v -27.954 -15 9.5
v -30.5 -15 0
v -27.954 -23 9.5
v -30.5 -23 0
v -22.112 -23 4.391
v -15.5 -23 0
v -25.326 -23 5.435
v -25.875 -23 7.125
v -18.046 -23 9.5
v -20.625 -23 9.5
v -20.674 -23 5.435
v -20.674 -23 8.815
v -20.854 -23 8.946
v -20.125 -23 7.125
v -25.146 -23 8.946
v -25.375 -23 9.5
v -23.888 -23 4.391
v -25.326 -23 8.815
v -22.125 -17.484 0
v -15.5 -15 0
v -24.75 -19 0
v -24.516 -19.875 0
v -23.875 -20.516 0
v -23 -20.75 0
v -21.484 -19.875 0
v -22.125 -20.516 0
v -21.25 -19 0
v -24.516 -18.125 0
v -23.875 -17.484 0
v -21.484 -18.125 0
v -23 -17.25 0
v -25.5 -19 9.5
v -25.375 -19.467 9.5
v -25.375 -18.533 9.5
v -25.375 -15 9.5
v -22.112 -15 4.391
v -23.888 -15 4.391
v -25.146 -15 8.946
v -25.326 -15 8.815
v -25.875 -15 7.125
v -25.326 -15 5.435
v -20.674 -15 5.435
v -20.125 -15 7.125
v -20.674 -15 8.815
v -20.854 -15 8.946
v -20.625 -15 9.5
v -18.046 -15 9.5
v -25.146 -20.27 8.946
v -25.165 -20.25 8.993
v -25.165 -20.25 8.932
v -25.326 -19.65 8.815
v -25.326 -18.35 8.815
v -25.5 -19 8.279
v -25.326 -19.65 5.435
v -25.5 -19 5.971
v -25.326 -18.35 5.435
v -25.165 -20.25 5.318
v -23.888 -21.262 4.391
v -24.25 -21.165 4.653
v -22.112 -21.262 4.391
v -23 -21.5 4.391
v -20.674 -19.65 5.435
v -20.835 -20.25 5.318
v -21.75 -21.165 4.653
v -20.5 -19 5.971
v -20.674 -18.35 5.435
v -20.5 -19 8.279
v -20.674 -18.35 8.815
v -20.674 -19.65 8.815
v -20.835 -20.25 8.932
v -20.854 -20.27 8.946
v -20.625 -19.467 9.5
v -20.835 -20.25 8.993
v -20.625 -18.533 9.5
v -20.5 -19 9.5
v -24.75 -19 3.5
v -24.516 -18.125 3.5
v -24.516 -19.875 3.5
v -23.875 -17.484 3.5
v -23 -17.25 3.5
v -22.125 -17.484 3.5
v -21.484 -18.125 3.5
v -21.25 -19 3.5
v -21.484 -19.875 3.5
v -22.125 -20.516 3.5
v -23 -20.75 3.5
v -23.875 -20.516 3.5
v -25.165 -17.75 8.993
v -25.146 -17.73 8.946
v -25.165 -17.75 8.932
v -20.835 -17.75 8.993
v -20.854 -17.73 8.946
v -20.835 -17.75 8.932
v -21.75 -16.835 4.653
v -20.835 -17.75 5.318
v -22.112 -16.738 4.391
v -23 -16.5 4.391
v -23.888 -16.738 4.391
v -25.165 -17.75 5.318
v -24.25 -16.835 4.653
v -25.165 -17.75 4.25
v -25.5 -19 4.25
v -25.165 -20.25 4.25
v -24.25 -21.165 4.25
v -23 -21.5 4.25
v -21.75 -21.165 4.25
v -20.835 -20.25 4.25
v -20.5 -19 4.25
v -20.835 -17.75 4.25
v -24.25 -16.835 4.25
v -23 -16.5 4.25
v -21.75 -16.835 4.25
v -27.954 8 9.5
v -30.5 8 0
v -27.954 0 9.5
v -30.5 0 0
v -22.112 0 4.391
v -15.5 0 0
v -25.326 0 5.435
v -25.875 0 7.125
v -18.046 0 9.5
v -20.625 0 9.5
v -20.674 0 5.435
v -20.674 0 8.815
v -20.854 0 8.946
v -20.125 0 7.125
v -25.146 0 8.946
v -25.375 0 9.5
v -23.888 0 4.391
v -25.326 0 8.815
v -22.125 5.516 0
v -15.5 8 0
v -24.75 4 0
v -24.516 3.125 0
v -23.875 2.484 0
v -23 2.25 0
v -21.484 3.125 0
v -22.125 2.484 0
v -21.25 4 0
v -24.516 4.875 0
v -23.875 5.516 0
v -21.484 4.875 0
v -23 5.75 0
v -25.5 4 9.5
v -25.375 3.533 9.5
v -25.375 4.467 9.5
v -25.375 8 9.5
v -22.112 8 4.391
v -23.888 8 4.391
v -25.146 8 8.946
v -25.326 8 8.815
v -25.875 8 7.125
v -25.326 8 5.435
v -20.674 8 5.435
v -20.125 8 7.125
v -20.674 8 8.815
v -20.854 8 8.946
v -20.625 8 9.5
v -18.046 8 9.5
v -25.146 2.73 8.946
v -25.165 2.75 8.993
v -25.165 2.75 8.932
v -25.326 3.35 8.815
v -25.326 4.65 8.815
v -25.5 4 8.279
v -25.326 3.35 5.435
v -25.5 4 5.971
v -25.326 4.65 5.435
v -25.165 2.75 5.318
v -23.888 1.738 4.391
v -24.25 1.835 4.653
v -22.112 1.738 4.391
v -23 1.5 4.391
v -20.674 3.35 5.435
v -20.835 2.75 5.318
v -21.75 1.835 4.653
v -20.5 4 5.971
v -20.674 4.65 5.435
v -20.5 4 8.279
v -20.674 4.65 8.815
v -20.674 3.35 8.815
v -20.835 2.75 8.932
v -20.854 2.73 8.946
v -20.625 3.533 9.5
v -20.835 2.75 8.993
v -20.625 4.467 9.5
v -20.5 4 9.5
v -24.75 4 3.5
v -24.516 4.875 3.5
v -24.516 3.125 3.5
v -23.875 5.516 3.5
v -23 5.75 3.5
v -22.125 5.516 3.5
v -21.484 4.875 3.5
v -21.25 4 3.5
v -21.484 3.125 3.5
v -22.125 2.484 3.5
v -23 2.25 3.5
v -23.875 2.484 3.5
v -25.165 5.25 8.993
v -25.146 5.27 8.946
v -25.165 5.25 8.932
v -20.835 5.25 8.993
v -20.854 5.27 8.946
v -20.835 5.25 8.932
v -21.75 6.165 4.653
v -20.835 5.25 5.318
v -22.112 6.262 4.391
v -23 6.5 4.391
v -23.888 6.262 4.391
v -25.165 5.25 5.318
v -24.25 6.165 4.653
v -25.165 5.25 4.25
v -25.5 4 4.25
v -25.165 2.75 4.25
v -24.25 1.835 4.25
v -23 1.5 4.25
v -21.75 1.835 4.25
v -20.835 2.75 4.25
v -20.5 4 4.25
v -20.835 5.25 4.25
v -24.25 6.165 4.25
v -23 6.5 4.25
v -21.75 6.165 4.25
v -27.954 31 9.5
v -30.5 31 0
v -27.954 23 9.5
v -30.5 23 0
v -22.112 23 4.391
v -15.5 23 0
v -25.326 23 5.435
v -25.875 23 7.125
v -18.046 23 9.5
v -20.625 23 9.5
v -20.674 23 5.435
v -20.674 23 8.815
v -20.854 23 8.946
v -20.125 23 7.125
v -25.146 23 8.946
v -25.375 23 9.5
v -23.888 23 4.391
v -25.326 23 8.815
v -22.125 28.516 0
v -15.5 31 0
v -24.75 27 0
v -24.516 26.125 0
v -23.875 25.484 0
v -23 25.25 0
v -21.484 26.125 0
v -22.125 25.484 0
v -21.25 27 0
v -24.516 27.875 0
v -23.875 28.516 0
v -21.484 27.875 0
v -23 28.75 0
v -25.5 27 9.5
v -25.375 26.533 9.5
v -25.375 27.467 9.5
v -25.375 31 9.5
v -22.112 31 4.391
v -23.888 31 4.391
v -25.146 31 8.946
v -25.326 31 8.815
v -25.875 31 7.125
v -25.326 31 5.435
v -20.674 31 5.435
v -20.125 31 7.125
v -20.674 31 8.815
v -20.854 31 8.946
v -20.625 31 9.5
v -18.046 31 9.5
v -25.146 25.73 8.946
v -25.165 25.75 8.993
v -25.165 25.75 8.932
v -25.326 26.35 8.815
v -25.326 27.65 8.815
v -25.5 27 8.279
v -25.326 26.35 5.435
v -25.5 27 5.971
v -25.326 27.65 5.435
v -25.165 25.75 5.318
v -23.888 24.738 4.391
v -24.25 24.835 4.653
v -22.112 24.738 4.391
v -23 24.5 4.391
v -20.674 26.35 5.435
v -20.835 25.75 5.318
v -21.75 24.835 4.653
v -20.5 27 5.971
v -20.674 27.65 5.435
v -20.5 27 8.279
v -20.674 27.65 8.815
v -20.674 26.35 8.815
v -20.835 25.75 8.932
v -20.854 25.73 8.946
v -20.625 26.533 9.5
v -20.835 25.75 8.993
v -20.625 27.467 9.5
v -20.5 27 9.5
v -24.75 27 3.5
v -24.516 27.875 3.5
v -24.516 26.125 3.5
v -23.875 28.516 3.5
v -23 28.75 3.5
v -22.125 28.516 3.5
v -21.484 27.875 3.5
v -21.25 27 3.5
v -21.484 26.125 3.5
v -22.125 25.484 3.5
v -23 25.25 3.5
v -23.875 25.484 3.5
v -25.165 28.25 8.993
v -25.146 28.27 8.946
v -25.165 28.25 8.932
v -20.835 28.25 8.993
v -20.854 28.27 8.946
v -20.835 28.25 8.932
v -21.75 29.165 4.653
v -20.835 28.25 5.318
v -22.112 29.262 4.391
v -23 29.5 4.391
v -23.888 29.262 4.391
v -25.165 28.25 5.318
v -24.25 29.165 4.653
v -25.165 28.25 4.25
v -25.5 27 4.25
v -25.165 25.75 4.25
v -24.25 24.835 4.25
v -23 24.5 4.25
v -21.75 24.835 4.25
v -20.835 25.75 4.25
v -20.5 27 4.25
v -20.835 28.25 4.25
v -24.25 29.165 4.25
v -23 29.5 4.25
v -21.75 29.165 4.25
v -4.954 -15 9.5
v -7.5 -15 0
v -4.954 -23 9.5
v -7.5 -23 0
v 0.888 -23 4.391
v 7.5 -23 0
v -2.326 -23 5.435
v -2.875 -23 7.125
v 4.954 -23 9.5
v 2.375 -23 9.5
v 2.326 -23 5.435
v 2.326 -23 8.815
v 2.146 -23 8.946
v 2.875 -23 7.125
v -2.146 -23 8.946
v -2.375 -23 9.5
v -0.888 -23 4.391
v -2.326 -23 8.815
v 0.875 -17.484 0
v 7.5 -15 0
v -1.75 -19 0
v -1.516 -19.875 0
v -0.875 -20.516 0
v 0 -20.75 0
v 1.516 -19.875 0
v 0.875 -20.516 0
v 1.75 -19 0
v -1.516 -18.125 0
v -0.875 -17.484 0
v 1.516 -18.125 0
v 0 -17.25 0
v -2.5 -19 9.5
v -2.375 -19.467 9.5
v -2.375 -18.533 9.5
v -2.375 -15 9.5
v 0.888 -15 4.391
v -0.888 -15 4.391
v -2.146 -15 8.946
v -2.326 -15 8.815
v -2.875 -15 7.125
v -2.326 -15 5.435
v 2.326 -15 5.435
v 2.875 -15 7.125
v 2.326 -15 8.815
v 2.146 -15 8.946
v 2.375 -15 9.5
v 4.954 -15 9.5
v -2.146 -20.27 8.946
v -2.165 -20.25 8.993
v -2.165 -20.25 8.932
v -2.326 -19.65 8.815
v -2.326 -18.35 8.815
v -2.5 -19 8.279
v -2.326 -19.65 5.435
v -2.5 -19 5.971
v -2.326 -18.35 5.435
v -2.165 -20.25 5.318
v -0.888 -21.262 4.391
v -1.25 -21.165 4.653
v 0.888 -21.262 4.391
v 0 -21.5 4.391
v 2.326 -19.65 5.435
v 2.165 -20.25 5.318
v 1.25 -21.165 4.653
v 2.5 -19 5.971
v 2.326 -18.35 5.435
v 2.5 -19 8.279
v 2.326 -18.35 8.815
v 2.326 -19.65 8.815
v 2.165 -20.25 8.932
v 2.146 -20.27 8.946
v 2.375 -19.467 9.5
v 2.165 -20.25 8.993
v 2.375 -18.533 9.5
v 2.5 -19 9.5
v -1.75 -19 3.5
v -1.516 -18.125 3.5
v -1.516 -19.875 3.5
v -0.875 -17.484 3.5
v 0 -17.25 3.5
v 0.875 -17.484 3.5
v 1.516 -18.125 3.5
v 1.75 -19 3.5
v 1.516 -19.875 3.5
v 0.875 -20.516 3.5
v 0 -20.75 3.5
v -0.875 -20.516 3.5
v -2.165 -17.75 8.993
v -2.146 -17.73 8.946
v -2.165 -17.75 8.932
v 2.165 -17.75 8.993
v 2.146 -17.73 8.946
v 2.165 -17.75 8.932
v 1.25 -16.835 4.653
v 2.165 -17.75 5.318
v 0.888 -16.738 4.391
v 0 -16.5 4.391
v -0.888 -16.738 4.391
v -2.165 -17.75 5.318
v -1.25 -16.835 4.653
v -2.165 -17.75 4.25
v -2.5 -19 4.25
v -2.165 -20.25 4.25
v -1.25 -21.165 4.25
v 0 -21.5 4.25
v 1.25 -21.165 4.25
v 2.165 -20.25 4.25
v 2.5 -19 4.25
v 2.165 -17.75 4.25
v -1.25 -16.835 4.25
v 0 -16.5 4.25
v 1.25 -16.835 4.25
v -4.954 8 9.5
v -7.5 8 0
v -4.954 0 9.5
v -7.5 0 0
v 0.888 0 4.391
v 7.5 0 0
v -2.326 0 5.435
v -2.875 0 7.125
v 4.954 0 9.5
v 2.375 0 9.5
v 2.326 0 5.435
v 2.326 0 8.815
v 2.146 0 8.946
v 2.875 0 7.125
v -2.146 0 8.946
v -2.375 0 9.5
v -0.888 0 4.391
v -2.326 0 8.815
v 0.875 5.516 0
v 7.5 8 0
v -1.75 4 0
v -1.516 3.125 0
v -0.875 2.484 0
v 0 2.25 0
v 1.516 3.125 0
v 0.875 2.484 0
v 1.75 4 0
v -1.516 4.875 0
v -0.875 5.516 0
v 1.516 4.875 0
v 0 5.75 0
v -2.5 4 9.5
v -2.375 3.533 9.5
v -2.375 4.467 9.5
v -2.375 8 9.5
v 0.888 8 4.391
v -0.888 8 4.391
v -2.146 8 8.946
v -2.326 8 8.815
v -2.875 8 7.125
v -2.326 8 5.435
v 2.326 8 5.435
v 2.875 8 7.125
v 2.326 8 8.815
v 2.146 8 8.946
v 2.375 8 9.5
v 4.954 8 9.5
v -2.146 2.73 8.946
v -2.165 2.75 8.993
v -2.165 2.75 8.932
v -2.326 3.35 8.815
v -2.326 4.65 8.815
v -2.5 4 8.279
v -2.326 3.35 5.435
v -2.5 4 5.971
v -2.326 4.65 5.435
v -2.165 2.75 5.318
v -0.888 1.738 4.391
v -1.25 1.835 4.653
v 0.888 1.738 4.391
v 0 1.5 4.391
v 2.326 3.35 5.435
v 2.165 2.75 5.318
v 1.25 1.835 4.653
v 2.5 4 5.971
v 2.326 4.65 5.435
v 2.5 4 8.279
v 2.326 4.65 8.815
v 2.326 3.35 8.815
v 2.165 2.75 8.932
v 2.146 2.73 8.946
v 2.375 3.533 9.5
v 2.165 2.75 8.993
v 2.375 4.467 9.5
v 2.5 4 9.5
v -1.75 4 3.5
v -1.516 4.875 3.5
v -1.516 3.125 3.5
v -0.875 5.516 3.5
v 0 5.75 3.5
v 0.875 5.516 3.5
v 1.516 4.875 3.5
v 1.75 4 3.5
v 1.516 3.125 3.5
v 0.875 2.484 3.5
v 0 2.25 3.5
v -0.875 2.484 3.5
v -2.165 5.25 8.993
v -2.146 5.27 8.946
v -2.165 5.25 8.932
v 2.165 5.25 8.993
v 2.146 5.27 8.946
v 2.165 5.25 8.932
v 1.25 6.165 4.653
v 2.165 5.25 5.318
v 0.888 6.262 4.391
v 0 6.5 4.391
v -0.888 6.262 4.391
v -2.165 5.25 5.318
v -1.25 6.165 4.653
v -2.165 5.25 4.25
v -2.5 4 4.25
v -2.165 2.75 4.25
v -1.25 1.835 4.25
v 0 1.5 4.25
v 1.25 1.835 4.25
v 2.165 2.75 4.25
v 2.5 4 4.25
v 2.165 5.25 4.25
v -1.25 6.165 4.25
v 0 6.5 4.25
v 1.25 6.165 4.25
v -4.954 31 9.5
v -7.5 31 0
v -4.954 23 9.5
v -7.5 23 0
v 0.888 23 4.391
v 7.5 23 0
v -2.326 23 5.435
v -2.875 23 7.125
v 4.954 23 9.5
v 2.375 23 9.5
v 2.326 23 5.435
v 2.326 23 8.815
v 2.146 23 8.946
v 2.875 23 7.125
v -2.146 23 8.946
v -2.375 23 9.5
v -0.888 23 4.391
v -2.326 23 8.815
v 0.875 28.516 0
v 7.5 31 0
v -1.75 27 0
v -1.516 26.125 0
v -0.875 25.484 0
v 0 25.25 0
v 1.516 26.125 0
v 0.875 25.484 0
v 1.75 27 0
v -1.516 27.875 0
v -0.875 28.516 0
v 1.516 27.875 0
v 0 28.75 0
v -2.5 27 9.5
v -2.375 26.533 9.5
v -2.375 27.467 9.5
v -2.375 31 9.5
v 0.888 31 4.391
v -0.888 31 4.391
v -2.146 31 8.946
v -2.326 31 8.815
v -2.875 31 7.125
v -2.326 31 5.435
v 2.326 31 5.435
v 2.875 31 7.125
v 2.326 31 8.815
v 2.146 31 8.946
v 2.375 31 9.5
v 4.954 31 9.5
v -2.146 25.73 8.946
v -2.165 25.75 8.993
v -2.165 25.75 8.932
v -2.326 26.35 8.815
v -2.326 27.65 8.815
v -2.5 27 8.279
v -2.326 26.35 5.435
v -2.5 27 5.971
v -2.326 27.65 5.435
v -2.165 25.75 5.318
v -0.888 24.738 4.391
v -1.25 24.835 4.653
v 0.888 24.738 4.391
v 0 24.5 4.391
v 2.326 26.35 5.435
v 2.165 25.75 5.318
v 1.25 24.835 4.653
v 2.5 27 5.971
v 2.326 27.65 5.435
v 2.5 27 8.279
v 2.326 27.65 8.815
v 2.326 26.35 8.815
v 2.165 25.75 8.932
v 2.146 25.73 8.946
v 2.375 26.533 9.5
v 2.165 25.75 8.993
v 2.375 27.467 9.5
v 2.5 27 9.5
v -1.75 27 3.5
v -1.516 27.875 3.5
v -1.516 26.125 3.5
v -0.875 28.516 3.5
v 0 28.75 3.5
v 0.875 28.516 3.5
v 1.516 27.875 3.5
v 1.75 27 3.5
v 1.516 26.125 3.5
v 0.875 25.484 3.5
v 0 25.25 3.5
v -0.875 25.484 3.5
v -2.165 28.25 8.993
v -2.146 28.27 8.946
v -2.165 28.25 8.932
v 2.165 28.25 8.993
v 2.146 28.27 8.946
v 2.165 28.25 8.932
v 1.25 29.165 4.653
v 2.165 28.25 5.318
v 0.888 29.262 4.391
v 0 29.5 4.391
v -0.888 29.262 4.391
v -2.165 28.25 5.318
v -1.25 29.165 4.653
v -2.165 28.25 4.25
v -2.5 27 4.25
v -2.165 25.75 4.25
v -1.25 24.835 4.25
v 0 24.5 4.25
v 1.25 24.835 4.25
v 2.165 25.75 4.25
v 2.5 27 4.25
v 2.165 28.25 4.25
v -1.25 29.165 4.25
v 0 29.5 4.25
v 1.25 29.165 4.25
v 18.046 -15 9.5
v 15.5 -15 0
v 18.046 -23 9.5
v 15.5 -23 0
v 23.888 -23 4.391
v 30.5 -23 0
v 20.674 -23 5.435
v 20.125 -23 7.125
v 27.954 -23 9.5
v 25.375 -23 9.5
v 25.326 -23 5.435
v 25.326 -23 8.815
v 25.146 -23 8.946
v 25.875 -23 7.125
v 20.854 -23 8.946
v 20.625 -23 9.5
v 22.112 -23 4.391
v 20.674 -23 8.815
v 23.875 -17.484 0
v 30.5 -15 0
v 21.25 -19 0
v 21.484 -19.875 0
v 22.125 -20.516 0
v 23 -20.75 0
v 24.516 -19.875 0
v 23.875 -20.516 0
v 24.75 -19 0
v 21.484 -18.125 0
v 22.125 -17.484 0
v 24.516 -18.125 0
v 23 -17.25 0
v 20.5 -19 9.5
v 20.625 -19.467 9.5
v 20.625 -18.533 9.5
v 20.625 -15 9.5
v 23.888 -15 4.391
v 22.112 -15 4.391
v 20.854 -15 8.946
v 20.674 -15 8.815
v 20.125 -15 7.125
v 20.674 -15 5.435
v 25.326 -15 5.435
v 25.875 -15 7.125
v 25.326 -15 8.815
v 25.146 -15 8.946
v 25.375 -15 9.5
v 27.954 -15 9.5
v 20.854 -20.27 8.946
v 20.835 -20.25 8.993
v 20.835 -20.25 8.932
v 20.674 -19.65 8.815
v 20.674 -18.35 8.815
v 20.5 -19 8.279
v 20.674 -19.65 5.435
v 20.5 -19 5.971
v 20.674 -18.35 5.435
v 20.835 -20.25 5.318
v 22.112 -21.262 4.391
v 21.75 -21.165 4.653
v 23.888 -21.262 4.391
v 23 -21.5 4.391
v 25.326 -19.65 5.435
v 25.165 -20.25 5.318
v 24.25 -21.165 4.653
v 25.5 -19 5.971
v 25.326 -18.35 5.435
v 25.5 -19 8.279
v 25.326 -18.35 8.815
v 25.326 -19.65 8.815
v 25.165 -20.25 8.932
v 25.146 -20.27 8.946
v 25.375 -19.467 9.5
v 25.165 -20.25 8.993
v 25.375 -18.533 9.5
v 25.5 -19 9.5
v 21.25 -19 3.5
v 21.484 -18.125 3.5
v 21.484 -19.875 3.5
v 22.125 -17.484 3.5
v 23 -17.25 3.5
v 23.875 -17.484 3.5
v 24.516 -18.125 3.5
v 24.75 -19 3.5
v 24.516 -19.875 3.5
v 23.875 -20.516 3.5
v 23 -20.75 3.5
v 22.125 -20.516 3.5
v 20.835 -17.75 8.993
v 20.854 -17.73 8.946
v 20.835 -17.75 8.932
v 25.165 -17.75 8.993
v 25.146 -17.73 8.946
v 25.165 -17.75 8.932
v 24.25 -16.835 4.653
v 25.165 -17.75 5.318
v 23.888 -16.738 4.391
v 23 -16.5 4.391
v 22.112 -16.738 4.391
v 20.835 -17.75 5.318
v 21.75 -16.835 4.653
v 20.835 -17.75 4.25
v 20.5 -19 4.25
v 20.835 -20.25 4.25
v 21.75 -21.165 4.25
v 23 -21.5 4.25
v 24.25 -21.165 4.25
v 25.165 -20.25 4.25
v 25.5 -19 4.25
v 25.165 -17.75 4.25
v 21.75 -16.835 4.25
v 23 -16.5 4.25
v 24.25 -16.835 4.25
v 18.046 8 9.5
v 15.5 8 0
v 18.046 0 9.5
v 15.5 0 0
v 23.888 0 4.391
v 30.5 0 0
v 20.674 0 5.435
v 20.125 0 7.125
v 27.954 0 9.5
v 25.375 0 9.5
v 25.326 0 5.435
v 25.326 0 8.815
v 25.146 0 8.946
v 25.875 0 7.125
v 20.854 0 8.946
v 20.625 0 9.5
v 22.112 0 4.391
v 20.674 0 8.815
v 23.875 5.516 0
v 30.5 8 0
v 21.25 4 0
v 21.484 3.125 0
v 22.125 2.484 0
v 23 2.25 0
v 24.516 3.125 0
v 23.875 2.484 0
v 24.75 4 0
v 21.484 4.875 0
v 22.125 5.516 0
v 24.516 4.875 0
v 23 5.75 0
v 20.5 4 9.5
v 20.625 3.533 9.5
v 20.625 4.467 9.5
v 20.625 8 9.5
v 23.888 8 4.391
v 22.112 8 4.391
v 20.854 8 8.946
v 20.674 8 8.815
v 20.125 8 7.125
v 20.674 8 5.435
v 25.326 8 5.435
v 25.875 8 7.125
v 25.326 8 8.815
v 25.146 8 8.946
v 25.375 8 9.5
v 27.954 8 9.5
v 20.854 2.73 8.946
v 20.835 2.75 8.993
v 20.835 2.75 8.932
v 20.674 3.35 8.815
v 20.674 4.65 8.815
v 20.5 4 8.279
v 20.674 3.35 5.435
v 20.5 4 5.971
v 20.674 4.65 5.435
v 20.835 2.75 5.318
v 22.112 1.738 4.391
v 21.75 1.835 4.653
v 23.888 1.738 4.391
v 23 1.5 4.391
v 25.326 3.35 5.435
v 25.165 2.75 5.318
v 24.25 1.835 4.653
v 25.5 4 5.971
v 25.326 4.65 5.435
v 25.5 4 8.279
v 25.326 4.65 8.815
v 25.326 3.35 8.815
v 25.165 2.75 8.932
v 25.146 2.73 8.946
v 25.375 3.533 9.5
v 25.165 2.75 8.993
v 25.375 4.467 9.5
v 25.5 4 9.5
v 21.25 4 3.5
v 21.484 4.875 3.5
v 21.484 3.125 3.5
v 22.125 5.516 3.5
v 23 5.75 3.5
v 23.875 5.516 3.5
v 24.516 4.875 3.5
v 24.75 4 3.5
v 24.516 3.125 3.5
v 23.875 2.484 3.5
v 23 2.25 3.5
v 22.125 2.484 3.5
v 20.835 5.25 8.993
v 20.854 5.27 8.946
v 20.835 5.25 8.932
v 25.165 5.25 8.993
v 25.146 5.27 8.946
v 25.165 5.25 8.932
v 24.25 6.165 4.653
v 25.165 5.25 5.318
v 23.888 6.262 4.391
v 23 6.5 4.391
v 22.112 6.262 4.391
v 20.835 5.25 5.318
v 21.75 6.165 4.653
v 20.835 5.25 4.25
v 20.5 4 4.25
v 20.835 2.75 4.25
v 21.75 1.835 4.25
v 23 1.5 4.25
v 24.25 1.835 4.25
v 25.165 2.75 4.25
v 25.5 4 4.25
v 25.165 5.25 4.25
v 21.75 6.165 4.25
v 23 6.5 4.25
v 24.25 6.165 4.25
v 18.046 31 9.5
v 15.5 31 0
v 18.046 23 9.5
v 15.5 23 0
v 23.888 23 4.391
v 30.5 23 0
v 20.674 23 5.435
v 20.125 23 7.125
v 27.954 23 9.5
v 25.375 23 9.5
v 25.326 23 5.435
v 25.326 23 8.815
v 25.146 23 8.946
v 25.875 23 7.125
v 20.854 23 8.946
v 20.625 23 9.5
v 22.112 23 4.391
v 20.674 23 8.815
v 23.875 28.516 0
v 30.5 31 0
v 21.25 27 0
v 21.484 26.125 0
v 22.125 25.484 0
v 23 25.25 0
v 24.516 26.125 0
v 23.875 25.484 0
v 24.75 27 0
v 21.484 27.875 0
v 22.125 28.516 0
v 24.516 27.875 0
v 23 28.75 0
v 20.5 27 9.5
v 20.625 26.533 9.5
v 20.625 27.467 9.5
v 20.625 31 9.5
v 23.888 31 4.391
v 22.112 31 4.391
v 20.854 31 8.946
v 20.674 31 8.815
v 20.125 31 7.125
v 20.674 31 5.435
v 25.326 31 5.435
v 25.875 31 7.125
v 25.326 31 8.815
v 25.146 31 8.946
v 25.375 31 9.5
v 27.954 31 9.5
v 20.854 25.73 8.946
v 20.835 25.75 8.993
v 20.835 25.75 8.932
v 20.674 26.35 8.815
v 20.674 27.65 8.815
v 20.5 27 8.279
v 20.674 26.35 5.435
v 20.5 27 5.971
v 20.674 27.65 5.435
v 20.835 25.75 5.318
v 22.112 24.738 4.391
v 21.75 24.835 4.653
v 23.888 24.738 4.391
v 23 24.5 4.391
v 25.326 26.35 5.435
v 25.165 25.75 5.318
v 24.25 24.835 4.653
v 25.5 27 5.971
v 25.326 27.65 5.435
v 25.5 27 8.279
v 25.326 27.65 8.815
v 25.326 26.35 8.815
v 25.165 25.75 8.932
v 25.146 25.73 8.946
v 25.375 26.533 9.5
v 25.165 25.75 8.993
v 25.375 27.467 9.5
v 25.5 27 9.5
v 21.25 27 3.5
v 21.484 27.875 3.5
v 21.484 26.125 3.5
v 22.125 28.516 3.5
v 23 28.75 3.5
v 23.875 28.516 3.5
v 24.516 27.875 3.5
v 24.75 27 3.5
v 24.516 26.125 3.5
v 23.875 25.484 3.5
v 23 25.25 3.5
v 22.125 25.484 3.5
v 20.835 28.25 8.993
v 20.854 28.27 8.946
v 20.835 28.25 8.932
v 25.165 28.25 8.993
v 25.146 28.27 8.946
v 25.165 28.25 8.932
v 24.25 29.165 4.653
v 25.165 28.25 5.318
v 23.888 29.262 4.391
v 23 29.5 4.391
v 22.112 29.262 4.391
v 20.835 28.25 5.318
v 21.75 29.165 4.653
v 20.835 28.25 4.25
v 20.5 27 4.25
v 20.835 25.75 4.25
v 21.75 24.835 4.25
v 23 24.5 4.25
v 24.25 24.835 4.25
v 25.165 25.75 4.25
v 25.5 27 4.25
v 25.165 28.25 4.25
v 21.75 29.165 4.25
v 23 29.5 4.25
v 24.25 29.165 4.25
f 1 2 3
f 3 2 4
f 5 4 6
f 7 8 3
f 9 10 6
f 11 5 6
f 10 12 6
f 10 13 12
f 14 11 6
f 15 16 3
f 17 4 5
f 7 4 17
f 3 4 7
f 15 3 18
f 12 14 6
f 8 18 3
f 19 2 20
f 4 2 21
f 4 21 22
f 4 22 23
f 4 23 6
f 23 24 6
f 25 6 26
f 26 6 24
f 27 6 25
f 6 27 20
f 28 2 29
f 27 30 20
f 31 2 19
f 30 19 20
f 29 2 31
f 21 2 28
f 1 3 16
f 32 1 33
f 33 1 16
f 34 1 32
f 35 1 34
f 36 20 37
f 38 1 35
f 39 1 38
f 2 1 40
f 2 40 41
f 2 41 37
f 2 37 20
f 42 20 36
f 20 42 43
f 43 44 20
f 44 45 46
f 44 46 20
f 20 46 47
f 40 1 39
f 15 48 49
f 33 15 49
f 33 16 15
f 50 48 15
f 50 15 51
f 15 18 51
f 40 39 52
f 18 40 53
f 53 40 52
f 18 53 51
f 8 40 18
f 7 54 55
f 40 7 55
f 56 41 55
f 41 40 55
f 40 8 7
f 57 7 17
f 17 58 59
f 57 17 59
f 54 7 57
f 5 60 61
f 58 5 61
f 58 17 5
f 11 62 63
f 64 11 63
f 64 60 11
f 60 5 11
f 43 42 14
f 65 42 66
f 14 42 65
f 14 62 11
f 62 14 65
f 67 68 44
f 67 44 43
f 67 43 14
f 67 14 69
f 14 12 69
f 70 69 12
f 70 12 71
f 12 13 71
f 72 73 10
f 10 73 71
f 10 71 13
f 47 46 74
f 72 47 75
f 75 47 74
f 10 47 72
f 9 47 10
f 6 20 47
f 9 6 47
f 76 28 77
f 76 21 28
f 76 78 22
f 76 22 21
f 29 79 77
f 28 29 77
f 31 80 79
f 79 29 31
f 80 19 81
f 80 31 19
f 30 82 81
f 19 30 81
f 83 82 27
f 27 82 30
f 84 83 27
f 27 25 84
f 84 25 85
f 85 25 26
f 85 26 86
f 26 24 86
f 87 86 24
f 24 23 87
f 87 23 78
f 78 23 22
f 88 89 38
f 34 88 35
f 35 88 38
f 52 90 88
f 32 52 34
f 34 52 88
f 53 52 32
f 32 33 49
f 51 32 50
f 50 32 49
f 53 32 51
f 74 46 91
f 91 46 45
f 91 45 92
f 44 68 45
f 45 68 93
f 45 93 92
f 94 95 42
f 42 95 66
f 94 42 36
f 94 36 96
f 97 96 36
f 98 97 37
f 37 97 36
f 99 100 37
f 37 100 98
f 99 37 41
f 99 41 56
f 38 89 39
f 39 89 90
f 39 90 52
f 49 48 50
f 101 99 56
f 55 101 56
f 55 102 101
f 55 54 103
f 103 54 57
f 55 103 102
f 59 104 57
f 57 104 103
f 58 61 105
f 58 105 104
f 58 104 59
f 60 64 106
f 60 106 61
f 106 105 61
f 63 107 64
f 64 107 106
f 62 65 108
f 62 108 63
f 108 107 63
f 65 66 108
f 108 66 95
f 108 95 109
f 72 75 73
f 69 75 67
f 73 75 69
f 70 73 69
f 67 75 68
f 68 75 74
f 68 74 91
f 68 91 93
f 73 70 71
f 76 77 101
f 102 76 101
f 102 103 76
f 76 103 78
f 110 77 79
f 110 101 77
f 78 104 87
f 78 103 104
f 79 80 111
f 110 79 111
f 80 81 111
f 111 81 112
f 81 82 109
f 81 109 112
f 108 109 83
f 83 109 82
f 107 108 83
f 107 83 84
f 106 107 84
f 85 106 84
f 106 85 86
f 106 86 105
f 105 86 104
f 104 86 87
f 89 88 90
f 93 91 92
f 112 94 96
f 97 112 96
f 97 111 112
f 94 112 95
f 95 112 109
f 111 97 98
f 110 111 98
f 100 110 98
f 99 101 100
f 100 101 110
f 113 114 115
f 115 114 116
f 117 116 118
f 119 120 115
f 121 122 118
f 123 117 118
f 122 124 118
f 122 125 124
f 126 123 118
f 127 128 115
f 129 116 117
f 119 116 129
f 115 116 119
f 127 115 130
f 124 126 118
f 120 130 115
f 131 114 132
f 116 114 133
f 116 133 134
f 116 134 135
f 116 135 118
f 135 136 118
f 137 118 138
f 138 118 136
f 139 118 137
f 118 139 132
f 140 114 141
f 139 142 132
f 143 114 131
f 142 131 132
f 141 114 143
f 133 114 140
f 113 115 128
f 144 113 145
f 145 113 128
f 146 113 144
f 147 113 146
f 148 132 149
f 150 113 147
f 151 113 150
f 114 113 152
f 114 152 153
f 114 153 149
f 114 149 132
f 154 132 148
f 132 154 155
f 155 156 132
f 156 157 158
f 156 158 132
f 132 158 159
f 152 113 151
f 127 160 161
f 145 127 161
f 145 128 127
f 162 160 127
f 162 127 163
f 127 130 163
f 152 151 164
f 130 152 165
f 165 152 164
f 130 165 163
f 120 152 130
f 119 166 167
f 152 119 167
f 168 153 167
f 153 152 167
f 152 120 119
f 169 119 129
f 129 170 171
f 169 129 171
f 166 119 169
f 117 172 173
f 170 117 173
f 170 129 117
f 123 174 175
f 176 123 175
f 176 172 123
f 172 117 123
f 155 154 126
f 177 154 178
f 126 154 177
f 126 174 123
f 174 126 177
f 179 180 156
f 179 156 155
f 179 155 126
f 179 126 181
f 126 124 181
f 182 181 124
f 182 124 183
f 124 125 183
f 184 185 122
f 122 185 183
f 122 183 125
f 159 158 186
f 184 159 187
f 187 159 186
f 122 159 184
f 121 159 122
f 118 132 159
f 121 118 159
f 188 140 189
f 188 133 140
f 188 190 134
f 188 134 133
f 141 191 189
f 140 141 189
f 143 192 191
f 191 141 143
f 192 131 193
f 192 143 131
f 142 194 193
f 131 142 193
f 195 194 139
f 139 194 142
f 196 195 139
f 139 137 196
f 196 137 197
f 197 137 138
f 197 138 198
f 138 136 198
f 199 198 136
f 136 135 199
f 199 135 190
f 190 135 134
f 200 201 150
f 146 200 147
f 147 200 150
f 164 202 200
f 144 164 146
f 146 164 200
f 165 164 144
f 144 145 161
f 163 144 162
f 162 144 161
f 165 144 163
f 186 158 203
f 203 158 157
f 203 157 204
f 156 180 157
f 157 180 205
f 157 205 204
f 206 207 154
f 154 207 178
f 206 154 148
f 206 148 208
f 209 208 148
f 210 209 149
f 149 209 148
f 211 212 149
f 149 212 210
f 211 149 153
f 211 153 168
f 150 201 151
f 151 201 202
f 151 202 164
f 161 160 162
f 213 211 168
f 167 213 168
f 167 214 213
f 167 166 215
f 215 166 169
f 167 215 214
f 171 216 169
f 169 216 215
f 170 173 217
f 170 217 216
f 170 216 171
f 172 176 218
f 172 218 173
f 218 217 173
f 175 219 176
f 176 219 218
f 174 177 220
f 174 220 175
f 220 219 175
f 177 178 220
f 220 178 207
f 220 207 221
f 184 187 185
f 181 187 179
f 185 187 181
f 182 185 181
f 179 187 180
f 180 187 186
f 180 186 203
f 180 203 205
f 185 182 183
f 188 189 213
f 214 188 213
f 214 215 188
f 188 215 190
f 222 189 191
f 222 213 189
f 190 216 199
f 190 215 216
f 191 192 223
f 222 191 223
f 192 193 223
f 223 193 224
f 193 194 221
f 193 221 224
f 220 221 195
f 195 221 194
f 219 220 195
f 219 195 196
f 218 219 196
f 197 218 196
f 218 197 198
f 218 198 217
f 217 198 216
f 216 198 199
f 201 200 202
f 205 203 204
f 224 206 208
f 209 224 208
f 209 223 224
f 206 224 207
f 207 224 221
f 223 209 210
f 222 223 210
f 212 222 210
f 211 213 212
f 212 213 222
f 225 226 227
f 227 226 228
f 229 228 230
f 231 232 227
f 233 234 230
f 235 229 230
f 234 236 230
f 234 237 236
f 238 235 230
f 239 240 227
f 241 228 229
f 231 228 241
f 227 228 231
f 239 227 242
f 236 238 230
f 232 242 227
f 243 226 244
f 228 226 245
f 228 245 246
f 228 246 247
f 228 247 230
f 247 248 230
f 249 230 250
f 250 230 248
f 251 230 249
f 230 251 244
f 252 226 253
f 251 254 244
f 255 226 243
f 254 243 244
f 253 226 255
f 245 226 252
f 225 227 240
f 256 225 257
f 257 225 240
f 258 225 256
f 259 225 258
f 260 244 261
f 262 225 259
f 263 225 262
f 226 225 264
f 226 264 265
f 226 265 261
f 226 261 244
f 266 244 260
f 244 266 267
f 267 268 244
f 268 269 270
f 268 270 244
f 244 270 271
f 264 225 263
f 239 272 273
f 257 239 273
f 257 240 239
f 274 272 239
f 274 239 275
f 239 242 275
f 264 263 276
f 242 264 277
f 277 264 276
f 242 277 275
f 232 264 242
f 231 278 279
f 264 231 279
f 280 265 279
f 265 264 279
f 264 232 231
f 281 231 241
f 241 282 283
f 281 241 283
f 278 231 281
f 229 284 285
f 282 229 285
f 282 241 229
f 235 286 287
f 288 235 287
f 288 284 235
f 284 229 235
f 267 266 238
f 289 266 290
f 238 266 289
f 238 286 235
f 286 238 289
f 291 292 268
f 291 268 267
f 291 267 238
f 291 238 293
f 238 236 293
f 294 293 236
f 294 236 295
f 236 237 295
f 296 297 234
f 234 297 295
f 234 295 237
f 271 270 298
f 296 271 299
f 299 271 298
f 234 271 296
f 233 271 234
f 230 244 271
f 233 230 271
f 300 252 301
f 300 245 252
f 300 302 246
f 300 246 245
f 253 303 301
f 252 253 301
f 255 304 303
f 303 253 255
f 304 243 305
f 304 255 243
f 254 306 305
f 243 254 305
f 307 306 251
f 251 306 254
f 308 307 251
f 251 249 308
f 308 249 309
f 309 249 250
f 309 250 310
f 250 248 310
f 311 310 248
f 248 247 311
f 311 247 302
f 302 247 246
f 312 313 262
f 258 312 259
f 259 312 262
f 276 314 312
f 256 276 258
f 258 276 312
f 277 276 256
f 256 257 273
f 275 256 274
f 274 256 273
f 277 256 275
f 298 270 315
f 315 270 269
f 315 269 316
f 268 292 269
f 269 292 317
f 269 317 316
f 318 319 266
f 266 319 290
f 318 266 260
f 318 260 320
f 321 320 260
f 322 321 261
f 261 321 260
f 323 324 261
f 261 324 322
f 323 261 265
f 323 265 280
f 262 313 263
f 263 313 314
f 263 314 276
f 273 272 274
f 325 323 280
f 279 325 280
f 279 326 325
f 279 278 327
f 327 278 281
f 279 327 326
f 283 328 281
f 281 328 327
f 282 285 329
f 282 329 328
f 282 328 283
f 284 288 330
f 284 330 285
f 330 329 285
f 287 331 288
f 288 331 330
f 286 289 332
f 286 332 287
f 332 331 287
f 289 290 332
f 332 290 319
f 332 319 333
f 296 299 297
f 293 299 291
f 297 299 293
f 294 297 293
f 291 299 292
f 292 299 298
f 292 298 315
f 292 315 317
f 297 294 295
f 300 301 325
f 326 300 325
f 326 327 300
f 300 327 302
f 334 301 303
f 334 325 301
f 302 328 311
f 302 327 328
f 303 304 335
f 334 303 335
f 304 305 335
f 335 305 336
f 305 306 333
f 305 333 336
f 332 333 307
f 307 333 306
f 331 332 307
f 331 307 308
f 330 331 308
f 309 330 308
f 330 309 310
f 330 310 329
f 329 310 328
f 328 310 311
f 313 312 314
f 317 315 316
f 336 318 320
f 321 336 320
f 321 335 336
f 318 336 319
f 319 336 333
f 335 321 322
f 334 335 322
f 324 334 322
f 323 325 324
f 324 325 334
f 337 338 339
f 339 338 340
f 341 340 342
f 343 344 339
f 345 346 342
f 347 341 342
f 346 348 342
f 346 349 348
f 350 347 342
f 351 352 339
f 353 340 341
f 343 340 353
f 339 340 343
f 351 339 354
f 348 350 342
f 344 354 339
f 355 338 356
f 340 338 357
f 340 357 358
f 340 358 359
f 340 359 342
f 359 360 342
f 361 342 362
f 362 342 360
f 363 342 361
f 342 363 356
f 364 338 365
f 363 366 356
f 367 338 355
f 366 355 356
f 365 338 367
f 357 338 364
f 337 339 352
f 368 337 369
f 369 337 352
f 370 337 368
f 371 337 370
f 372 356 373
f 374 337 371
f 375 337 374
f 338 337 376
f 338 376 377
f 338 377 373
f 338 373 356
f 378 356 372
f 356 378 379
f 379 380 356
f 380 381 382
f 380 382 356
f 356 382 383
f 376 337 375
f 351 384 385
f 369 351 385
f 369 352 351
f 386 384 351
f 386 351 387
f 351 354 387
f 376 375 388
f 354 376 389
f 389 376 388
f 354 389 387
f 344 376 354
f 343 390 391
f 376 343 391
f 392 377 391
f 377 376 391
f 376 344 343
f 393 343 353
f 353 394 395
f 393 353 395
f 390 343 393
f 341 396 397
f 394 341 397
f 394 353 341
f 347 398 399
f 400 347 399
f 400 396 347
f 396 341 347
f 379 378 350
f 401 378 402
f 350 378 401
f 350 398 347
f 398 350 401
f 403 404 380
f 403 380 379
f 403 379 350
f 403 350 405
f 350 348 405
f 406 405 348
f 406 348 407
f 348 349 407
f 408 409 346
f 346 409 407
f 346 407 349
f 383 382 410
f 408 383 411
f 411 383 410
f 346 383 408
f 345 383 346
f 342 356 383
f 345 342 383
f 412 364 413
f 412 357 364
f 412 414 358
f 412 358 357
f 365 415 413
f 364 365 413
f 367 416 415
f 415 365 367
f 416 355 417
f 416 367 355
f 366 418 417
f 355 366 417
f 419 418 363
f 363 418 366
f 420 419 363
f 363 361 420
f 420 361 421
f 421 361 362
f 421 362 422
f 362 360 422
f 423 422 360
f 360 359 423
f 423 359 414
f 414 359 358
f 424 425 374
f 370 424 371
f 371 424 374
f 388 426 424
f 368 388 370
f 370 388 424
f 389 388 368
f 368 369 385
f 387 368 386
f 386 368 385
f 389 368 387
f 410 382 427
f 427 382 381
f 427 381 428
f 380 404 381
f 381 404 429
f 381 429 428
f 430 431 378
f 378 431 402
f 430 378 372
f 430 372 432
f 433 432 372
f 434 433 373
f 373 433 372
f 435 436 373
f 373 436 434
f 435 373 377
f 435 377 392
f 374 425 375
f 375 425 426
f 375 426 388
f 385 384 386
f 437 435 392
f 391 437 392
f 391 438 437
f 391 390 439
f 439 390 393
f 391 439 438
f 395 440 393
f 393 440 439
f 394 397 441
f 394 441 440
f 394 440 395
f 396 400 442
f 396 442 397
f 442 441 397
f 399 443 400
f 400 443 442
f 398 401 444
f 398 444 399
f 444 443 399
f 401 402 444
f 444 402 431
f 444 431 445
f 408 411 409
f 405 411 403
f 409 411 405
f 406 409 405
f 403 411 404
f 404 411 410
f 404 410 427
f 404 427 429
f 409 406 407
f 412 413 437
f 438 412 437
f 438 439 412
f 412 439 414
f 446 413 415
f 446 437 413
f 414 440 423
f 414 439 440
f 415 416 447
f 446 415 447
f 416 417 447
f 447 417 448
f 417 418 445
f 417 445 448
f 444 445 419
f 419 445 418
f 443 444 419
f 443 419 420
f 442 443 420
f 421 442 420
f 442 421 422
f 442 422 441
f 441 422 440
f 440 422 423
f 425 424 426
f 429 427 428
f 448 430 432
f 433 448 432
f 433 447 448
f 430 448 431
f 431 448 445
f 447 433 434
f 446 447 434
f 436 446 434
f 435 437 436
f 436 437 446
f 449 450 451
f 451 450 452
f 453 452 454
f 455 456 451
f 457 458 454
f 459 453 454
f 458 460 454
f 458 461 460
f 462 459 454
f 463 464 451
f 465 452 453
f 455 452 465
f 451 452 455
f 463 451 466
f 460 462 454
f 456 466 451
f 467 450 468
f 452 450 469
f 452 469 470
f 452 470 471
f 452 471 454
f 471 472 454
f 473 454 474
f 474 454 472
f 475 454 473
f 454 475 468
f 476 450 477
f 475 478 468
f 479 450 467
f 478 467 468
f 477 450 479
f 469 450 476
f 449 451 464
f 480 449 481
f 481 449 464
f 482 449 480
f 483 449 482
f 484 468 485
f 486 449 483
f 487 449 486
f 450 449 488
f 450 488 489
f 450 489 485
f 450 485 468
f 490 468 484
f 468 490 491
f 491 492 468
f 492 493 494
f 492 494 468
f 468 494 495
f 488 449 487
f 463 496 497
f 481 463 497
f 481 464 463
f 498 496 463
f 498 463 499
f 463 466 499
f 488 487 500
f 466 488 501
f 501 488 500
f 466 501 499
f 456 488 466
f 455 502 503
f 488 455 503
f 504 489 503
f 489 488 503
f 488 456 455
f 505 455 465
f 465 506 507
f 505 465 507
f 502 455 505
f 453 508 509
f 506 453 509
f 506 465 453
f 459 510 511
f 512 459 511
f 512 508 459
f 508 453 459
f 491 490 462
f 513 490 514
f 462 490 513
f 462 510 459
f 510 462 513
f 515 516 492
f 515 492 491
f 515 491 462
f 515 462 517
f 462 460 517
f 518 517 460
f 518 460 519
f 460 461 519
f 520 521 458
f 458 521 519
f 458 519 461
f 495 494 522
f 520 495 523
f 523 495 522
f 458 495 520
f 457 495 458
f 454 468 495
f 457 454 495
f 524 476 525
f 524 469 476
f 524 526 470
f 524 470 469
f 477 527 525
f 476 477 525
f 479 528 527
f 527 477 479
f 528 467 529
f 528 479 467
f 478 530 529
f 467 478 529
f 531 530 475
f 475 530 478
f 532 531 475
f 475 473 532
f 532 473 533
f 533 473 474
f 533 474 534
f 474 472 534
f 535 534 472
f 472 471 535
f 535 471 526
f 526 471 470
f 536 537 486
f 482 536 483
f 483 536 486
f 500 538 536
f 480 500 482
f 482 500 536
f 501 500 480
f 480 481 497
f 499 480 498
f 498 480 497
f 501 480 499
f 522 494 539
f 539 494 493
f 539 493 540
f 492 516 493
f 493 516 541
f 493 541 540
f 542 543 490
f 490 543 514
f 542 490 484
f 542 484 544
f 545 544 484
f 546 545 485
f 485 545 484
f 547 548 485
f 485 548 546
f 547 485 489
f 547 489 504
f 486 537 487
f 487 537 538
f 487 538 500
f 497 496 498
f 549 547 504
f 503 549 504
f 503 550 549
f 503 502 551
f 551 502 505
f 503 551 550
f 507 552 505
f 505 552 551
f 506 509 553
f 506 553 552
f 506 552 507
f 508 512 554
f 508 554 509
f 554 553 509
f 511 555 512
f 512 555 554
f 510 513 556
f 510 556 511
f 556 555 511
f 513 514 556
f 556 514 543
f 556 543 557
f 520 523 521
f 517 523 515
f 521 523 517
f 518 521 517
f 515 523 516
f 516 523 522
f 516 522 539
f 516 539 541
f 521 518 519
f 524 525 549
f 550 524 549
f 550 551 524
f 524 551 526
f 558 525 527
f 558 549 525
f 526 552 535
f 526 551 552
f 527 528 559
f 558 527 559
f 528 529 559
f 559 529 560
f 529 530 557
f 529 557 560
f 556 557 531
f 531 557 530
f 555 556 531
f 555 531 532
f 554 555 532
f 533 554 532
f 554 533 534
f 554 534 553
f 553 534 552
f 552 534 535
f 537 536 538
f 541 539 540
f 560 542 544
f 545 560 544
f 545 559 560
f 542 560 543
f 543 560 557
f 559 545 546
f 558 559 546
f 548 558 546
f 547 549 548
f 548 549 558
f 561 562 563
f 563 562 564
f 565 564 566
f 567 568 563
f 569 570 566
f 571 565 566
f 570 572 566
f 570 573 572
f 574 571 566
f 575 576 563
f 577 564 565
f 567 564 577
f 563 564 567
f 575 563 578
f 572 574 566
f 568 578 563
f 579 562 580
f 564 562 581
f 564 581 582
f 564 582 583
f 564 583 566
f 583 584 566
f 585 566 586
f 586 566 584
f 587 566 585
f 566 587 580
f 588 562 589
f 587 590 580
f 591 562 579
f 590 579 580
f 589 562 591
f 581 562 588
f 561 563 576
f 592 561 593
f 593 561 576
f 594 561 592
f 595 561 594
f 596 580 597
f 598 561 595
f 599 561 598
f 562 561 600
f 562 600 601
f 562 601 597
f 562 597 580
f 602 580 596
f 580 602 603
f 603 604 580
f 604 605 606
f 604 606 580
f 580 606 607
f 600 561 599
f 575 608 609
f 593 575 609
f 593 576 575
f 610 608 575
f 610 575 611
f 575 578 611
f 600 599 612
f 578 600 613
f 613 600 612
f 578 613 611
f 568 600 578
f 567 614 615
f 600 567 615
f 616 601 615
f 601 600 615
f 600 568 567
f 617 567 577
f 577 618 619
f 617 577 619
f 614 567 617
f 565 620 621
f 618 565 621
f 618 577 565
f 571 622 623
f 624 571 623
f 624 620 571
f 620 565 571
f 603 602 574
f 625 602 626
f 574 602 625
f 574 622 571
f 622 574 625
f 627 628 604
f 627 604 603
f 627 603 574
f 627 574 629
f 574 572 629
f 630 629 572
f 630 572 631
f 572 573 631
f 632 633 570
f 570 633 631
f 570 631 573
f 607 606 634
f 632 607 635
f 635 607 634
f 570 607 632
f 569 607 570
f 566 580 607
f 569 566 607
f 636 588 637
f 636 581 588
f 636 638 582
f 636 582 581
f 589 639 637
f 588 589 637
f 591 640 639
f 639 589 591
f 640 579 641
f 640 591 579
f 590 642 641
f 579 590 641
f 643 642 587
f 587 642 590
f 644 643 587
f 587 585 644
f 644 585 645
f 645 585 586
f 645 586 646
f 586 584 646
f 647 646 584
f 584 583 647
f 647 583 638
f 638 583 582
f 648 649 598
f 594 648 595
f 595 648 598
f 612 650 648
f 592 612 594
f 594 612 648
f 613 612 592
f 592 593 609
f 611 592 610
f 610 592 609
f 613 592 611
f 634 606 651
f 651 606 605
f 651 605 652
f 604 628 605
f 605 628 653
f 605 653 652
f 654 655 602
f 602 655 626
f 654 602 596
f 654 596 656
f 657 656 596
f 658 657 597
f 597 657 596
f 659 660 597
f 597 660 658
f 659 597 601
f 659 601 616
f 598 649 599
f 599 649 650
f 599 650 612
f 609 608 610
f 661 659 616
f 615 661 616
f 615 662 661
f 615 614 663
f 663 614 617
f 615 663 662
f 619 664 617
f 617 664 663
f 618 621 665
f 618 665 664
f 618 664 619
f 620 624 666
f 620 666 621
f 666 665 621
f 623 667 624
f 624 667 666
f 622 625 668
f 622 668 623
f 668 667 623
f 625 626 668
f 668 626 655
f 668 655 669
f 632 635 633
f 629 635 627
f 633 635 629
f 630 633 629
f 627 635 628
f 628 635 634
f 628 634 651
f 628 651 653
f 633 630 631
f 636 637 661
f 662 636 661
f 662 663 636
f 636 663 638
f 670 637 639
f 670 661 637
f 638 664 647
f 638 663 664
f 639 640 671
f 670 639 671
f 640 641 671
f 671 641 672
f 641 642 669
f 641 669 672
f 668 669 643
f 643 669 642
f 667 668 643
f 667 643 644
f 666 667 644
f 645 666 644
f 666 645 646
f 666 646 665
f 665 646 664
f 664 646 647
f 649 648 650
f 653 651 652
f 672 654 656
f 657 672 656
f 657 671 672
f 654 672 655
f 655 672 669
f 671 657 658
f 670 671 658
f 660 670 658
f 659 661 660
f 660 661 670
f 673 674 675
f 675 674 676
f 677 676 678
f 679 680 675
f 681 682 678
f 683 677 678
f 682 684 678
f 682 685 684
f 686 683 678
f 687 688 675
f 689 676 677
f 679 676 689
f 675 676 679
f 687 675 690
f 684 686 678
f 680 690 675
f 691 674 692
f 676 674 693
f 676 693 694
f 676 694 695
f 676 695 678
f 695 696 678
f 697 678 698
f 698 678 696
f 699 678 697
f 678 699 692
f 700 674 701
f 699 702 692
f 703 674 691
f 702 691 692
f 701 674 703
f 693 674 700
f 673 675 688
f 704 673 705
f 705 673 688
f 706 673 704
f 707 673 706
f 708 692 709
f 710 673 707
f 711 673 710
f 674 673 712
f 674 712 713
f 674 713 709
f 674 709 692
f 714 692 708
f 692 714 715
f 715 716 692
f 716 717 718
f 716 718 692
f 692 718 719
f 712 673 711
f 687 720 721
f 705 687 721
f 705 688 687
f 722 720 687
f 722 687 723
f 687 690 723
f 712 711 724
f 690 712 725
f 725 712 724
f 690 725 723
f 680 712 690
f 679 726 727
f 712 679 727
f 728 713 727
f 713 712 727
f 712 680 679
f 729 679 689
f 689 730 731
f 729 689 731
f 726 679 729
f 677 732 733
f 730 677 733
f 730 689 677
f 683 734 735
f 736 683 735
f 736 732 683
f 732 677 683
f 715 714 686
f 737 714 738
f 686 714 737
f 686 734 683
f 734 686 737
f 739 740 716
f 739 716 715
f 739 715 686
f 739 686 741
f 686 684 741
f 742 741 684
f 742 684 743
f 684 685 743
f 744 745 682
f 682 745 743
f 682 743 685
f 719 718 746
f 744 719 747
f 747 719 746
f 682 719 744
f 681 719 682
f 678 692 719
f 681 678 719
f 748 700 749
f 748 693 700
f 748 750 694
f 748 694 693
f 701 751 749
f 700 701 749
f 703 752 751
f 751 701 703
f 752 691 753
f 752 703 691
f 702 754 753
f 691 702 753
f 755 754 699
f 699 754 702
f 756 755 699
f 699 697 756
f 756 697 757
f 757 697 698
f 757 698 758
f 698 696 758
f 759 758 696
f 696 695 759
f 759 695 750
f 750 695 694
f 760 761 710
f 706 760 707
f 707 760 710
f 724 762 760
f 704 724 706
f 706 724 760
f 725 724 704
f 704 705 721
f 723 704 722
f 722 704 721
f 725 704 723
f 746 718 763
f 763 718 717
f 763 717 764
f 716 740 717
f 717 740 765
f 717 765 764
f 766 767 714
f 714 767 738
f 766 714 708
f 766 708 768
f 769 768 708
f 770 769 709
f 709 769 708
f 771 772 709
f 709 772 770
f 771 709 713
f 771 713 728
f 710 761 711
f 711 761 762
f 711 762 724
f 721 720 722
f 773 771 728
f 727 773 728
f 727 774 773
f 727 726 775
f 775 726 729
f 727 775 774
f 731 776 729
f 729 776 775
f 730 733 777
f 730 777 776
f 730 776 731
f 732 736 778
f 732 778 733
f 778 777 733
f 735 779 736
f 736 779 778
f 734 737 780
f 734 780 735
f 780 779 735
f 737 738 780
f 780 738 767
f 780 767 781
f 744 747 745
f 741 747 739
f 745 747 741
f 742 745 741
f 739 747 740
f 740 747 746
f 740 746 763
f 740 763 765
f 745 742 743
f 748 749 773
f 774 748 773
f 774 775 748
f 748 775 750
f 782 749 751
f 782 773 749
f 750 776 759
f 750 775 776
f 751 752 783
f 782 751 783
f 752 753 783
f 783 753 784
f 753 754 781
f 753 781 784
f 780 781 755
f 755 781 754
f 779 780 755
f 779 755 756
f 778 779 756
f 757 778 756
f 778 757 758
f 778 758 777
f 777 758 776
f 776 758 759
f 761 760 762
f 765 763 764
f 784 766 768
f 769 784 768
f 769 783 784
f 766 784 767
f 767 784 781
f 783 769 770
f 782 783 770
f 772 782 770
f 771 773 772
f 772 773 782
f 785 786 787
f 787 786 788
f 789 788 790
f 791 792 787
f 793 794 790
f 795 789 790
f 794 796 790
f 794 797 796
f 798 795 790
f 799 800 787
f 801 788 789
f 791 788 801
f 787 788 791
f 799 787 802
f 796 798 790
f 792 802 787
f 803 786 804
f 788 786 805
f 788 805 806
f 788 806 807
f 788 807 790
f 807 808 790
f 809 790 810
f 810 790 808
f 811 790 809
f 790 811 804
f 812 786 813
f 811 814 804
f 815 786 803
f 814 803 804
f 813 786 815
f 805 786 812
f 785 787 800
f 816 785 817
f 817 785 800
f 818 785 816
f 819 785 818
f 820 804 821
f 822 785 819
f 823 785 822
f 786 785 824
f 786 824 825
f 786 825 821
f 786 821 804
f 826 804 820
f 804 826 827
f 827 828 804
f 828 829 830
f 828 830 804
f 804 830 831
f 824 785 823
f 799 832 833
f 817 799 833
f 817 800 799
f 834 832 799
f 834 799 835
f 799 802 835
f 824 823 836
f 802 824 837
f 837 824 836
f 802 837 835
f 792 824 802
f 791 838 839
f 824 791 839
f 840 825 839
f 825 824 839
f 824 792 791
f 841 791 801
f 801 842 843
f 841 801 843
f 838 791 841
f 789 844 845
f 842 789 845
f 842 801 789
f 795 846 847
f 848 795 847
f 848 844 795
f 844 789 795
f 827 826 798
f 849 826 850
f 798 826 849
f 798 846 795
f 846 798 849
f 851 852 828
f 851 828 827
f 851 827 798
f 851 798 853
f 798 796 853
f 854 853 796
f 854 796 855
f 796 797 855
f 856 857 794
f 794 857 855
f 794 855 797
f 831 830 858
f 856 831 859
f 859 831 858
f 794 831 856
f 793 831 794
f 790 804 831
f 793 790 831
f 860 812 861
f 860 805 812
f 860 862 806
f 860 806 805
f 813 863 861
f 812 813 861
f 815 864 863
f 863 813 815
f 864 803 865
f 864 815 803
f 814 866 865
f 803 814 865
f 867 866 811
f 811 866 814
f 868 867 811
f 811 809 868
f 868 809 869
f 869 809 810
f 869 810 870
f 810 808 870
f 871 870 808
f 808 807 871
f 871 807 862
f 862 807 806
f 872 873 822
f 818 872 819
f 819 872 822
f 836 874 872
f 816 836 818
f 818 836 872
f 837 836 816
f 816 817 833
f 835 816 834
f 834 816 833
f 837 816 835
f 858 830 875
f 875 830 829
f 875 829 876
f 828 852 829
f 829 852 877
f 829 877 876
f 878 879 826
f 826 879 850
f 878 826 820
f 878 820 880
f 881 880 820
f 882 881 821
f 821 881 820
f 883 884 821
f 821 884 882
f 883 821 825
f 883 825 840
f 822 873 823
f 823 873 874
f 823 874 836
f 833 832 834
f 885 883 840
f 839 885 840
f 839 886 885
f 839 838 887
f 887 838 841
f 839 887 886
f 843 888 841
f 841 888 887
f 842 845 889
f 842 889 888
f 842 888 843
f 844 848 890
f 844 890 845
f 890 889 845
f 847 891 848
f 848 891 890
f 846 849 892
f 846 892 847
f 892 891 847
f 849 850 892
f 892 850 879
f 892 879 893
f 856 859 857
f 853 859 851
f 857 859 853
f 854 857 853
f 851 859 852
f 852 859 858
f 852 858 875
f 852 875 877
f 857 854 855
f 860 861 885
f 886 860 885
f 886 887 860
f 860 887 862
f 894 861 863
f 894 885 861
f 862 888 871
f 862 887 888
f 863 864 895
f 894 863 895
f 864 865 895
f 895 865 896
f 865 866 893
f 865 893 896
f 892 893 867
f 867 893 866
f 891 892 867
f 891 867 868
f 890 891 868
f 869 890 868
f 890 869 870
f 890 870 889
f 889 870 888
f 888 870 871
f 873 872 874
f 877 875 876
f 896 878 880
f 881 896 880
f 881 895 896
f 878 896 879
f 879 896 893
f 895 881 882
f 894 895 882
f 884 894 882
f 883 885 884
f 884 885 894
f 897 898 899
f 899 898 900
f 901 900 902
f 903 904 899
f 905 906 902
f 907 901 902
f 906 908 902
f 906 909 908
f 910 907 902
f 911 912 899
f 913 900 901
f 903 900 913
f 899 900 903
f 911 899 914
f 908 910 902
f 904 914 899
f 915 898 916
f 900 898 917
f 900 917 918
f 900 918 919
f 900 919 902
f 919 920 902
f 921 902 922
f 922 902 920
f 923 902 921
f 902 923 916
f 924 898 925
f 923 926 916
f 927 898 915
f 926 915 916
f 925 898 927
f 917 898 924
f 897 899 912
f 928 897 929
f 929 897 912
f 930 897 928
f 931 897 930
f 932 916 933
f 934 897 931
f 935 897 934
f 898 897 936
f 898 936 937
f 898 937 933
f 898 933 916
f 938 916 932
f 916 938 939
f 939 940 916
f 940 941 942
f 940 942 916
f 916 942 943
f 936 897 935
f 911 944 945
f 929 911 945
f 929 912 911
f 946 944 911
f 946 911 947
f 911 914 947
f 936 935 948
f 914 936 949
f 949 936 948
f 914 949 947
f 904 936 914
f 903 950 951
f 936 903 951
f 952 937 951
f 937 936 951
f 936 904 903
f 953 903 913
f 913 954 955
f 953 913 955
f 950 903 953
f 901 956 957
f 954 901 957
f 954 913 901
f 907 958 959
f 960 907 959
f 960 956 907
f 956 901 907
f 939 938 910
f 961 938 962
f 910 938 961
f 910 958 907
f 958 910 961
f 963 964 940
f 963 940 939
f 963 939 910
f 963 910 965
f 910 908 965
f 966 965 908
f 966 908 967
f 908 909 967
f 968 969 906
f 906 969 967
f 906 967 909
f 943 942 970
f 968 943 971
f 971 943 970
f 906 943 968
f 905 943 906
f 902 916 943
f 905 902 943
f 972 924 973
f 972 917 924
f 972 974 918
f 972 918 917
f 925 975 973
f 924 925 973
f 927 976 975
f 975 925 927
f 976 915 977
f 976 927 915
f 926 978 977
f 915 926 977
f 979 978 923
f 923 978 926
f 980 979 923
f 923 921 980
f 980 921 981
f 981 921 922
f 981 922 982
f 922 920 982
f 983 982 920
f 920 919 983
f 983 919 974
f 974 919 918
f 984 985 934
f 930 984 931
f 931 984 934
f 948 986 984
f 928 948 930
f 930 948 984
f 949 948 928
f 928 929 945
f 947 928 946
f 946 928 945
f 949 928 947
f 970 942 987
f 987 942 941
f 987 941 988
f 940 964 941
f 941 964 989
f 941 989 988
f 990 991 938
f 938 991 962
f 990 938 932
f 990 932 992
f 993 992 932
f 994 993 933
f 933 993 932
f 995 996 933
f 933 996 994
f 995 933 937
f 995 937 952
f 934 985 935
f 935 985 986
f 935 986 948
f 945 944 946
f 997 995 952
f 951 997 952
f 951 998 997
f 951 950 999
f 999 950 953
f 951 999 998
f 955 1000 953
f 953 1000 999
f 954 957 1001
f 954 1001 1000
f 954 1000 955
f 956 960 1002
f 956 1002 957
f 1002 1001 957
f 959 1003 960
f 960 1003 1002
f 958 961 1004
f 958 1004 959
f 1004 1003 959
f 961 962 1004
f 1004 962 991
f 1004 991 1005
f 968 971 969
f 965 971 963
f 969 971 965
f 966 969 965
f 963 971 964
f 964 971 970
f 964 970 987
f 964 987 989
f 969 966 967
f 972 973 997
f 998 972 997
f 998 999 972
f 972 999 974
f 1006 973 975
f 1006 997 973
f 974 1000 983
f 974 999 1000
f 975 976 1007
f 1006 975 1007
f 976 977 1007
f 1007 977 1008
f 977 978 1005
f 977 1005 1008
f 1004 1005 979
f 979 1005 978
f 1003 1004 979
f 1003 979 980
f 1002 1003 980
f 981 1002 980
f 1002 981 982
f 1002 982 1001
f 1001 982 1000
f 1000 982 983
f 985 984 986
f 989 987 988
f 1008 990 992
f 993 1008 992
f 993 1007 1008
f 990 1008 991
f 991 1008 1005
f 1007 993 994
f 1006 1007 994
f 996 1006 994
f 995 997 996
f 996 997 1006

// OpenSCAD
// file: ../ShapeLibrary/CounterSink.scad
// Vertical countersink with top of countersink centred on origin 
//
// od = overall diameter (for screw head)
// oh = overall height (screw + head +recesss)
// sd = screw diameter
// sh = screw height (to top of countersink)
module countersinkZ(od, oh, sd, sh)
{
    union()
    {
        intersection()
	    {
            translate([0,0,-sh]) cylinder(r=od/2, h=oh, $fn=12);
            translate([0,0,-od/2]) cylinder(r1=0, r2=oh+od/2, h=oh+od/2, $fn=12);
        }
    translate([0,0,-sh]) cylinder(r=sd/2, h=sh, $fn=12);
    }
}

// Countersink with screw directed along negative X-axis
module countersinkX(od, oh, sd, sh)
{
    rotate([0,90,0]) countersinkZ(od, oh, sd, sh);
}

// Countersink with screw directed along negative Y-axis
module countersinkY(od, oh, sd, sh)
{
    rotate([90,0,0]) countersinkZ(od, oh, sd, sh);
}


// Examples
countersinkZ(8, 20, 4, 10);

translate([0,15,0]) countersinkX(8, 20, 4, 10);

translate([15,0,0]) countersinkY(8, 20, 4, 10);
// main file
use <../ShapeLibrary/CounterSink.scad>

// l   = length of clip
// w   = width (depth) of clip
// h   = height of clip
// pd  = pipe hole diameter
// pg  = pipe gap diameter
// shd = Screw head diameter
// ssd = screw shaft diameter
// d   = delta
module PipeClip(l, w, h, pd, pg, shd, ssd, d)
{
    difference()
    {
        translate([-l/2,0,0])
            cube(size=[l, w, h]);
        translate([0,-d,h]) 
            rotate([-90,0,0]) 
                cylinder(r=pg/2, h=w+2*d);
        translate([0,-d,h-pg/2]) 
            rotate([-90,0,0]) 
                cylinder(r=pd/2, h=w+2*d);
        translate([0,w/2,h-(pd+pg)/2]) 
            countersinkZ(shd, h+2*d, ssd, h+d-(pd+pg)/2);
        translate([l/2,-d,0]) 
            rotate([0,-15,0]) 
                cube(size=[l,w+2*d,h+w]);
        translate([-l/2,-d,0]) 
            rotate([0,15,0]) 
                translate([-l,0,0]) 
                    cube(size=[l,w+2*d,h+w]);
    }
}

l = 15;
w = 8;
p = l+w;
xn   = 3;
yn   = 3;
xlim = (xn-1)/2;
ylim = (yn-1)/2;

for (xo = [-xlim:xlim])
{
    for (yo = [-ylim:ylim])
    {
        translate([xo*p,yo*p,0])
            PipeClip(l, w, 9.5, 5.75, 4.75, 5, 3.5, 1);
    }
}


//PipeClip(15, 8, 10, 7, 6, 6, 3, 1);

//translate([0,-20,0]) countersink(6, 12, 3.5, 5, 1);
